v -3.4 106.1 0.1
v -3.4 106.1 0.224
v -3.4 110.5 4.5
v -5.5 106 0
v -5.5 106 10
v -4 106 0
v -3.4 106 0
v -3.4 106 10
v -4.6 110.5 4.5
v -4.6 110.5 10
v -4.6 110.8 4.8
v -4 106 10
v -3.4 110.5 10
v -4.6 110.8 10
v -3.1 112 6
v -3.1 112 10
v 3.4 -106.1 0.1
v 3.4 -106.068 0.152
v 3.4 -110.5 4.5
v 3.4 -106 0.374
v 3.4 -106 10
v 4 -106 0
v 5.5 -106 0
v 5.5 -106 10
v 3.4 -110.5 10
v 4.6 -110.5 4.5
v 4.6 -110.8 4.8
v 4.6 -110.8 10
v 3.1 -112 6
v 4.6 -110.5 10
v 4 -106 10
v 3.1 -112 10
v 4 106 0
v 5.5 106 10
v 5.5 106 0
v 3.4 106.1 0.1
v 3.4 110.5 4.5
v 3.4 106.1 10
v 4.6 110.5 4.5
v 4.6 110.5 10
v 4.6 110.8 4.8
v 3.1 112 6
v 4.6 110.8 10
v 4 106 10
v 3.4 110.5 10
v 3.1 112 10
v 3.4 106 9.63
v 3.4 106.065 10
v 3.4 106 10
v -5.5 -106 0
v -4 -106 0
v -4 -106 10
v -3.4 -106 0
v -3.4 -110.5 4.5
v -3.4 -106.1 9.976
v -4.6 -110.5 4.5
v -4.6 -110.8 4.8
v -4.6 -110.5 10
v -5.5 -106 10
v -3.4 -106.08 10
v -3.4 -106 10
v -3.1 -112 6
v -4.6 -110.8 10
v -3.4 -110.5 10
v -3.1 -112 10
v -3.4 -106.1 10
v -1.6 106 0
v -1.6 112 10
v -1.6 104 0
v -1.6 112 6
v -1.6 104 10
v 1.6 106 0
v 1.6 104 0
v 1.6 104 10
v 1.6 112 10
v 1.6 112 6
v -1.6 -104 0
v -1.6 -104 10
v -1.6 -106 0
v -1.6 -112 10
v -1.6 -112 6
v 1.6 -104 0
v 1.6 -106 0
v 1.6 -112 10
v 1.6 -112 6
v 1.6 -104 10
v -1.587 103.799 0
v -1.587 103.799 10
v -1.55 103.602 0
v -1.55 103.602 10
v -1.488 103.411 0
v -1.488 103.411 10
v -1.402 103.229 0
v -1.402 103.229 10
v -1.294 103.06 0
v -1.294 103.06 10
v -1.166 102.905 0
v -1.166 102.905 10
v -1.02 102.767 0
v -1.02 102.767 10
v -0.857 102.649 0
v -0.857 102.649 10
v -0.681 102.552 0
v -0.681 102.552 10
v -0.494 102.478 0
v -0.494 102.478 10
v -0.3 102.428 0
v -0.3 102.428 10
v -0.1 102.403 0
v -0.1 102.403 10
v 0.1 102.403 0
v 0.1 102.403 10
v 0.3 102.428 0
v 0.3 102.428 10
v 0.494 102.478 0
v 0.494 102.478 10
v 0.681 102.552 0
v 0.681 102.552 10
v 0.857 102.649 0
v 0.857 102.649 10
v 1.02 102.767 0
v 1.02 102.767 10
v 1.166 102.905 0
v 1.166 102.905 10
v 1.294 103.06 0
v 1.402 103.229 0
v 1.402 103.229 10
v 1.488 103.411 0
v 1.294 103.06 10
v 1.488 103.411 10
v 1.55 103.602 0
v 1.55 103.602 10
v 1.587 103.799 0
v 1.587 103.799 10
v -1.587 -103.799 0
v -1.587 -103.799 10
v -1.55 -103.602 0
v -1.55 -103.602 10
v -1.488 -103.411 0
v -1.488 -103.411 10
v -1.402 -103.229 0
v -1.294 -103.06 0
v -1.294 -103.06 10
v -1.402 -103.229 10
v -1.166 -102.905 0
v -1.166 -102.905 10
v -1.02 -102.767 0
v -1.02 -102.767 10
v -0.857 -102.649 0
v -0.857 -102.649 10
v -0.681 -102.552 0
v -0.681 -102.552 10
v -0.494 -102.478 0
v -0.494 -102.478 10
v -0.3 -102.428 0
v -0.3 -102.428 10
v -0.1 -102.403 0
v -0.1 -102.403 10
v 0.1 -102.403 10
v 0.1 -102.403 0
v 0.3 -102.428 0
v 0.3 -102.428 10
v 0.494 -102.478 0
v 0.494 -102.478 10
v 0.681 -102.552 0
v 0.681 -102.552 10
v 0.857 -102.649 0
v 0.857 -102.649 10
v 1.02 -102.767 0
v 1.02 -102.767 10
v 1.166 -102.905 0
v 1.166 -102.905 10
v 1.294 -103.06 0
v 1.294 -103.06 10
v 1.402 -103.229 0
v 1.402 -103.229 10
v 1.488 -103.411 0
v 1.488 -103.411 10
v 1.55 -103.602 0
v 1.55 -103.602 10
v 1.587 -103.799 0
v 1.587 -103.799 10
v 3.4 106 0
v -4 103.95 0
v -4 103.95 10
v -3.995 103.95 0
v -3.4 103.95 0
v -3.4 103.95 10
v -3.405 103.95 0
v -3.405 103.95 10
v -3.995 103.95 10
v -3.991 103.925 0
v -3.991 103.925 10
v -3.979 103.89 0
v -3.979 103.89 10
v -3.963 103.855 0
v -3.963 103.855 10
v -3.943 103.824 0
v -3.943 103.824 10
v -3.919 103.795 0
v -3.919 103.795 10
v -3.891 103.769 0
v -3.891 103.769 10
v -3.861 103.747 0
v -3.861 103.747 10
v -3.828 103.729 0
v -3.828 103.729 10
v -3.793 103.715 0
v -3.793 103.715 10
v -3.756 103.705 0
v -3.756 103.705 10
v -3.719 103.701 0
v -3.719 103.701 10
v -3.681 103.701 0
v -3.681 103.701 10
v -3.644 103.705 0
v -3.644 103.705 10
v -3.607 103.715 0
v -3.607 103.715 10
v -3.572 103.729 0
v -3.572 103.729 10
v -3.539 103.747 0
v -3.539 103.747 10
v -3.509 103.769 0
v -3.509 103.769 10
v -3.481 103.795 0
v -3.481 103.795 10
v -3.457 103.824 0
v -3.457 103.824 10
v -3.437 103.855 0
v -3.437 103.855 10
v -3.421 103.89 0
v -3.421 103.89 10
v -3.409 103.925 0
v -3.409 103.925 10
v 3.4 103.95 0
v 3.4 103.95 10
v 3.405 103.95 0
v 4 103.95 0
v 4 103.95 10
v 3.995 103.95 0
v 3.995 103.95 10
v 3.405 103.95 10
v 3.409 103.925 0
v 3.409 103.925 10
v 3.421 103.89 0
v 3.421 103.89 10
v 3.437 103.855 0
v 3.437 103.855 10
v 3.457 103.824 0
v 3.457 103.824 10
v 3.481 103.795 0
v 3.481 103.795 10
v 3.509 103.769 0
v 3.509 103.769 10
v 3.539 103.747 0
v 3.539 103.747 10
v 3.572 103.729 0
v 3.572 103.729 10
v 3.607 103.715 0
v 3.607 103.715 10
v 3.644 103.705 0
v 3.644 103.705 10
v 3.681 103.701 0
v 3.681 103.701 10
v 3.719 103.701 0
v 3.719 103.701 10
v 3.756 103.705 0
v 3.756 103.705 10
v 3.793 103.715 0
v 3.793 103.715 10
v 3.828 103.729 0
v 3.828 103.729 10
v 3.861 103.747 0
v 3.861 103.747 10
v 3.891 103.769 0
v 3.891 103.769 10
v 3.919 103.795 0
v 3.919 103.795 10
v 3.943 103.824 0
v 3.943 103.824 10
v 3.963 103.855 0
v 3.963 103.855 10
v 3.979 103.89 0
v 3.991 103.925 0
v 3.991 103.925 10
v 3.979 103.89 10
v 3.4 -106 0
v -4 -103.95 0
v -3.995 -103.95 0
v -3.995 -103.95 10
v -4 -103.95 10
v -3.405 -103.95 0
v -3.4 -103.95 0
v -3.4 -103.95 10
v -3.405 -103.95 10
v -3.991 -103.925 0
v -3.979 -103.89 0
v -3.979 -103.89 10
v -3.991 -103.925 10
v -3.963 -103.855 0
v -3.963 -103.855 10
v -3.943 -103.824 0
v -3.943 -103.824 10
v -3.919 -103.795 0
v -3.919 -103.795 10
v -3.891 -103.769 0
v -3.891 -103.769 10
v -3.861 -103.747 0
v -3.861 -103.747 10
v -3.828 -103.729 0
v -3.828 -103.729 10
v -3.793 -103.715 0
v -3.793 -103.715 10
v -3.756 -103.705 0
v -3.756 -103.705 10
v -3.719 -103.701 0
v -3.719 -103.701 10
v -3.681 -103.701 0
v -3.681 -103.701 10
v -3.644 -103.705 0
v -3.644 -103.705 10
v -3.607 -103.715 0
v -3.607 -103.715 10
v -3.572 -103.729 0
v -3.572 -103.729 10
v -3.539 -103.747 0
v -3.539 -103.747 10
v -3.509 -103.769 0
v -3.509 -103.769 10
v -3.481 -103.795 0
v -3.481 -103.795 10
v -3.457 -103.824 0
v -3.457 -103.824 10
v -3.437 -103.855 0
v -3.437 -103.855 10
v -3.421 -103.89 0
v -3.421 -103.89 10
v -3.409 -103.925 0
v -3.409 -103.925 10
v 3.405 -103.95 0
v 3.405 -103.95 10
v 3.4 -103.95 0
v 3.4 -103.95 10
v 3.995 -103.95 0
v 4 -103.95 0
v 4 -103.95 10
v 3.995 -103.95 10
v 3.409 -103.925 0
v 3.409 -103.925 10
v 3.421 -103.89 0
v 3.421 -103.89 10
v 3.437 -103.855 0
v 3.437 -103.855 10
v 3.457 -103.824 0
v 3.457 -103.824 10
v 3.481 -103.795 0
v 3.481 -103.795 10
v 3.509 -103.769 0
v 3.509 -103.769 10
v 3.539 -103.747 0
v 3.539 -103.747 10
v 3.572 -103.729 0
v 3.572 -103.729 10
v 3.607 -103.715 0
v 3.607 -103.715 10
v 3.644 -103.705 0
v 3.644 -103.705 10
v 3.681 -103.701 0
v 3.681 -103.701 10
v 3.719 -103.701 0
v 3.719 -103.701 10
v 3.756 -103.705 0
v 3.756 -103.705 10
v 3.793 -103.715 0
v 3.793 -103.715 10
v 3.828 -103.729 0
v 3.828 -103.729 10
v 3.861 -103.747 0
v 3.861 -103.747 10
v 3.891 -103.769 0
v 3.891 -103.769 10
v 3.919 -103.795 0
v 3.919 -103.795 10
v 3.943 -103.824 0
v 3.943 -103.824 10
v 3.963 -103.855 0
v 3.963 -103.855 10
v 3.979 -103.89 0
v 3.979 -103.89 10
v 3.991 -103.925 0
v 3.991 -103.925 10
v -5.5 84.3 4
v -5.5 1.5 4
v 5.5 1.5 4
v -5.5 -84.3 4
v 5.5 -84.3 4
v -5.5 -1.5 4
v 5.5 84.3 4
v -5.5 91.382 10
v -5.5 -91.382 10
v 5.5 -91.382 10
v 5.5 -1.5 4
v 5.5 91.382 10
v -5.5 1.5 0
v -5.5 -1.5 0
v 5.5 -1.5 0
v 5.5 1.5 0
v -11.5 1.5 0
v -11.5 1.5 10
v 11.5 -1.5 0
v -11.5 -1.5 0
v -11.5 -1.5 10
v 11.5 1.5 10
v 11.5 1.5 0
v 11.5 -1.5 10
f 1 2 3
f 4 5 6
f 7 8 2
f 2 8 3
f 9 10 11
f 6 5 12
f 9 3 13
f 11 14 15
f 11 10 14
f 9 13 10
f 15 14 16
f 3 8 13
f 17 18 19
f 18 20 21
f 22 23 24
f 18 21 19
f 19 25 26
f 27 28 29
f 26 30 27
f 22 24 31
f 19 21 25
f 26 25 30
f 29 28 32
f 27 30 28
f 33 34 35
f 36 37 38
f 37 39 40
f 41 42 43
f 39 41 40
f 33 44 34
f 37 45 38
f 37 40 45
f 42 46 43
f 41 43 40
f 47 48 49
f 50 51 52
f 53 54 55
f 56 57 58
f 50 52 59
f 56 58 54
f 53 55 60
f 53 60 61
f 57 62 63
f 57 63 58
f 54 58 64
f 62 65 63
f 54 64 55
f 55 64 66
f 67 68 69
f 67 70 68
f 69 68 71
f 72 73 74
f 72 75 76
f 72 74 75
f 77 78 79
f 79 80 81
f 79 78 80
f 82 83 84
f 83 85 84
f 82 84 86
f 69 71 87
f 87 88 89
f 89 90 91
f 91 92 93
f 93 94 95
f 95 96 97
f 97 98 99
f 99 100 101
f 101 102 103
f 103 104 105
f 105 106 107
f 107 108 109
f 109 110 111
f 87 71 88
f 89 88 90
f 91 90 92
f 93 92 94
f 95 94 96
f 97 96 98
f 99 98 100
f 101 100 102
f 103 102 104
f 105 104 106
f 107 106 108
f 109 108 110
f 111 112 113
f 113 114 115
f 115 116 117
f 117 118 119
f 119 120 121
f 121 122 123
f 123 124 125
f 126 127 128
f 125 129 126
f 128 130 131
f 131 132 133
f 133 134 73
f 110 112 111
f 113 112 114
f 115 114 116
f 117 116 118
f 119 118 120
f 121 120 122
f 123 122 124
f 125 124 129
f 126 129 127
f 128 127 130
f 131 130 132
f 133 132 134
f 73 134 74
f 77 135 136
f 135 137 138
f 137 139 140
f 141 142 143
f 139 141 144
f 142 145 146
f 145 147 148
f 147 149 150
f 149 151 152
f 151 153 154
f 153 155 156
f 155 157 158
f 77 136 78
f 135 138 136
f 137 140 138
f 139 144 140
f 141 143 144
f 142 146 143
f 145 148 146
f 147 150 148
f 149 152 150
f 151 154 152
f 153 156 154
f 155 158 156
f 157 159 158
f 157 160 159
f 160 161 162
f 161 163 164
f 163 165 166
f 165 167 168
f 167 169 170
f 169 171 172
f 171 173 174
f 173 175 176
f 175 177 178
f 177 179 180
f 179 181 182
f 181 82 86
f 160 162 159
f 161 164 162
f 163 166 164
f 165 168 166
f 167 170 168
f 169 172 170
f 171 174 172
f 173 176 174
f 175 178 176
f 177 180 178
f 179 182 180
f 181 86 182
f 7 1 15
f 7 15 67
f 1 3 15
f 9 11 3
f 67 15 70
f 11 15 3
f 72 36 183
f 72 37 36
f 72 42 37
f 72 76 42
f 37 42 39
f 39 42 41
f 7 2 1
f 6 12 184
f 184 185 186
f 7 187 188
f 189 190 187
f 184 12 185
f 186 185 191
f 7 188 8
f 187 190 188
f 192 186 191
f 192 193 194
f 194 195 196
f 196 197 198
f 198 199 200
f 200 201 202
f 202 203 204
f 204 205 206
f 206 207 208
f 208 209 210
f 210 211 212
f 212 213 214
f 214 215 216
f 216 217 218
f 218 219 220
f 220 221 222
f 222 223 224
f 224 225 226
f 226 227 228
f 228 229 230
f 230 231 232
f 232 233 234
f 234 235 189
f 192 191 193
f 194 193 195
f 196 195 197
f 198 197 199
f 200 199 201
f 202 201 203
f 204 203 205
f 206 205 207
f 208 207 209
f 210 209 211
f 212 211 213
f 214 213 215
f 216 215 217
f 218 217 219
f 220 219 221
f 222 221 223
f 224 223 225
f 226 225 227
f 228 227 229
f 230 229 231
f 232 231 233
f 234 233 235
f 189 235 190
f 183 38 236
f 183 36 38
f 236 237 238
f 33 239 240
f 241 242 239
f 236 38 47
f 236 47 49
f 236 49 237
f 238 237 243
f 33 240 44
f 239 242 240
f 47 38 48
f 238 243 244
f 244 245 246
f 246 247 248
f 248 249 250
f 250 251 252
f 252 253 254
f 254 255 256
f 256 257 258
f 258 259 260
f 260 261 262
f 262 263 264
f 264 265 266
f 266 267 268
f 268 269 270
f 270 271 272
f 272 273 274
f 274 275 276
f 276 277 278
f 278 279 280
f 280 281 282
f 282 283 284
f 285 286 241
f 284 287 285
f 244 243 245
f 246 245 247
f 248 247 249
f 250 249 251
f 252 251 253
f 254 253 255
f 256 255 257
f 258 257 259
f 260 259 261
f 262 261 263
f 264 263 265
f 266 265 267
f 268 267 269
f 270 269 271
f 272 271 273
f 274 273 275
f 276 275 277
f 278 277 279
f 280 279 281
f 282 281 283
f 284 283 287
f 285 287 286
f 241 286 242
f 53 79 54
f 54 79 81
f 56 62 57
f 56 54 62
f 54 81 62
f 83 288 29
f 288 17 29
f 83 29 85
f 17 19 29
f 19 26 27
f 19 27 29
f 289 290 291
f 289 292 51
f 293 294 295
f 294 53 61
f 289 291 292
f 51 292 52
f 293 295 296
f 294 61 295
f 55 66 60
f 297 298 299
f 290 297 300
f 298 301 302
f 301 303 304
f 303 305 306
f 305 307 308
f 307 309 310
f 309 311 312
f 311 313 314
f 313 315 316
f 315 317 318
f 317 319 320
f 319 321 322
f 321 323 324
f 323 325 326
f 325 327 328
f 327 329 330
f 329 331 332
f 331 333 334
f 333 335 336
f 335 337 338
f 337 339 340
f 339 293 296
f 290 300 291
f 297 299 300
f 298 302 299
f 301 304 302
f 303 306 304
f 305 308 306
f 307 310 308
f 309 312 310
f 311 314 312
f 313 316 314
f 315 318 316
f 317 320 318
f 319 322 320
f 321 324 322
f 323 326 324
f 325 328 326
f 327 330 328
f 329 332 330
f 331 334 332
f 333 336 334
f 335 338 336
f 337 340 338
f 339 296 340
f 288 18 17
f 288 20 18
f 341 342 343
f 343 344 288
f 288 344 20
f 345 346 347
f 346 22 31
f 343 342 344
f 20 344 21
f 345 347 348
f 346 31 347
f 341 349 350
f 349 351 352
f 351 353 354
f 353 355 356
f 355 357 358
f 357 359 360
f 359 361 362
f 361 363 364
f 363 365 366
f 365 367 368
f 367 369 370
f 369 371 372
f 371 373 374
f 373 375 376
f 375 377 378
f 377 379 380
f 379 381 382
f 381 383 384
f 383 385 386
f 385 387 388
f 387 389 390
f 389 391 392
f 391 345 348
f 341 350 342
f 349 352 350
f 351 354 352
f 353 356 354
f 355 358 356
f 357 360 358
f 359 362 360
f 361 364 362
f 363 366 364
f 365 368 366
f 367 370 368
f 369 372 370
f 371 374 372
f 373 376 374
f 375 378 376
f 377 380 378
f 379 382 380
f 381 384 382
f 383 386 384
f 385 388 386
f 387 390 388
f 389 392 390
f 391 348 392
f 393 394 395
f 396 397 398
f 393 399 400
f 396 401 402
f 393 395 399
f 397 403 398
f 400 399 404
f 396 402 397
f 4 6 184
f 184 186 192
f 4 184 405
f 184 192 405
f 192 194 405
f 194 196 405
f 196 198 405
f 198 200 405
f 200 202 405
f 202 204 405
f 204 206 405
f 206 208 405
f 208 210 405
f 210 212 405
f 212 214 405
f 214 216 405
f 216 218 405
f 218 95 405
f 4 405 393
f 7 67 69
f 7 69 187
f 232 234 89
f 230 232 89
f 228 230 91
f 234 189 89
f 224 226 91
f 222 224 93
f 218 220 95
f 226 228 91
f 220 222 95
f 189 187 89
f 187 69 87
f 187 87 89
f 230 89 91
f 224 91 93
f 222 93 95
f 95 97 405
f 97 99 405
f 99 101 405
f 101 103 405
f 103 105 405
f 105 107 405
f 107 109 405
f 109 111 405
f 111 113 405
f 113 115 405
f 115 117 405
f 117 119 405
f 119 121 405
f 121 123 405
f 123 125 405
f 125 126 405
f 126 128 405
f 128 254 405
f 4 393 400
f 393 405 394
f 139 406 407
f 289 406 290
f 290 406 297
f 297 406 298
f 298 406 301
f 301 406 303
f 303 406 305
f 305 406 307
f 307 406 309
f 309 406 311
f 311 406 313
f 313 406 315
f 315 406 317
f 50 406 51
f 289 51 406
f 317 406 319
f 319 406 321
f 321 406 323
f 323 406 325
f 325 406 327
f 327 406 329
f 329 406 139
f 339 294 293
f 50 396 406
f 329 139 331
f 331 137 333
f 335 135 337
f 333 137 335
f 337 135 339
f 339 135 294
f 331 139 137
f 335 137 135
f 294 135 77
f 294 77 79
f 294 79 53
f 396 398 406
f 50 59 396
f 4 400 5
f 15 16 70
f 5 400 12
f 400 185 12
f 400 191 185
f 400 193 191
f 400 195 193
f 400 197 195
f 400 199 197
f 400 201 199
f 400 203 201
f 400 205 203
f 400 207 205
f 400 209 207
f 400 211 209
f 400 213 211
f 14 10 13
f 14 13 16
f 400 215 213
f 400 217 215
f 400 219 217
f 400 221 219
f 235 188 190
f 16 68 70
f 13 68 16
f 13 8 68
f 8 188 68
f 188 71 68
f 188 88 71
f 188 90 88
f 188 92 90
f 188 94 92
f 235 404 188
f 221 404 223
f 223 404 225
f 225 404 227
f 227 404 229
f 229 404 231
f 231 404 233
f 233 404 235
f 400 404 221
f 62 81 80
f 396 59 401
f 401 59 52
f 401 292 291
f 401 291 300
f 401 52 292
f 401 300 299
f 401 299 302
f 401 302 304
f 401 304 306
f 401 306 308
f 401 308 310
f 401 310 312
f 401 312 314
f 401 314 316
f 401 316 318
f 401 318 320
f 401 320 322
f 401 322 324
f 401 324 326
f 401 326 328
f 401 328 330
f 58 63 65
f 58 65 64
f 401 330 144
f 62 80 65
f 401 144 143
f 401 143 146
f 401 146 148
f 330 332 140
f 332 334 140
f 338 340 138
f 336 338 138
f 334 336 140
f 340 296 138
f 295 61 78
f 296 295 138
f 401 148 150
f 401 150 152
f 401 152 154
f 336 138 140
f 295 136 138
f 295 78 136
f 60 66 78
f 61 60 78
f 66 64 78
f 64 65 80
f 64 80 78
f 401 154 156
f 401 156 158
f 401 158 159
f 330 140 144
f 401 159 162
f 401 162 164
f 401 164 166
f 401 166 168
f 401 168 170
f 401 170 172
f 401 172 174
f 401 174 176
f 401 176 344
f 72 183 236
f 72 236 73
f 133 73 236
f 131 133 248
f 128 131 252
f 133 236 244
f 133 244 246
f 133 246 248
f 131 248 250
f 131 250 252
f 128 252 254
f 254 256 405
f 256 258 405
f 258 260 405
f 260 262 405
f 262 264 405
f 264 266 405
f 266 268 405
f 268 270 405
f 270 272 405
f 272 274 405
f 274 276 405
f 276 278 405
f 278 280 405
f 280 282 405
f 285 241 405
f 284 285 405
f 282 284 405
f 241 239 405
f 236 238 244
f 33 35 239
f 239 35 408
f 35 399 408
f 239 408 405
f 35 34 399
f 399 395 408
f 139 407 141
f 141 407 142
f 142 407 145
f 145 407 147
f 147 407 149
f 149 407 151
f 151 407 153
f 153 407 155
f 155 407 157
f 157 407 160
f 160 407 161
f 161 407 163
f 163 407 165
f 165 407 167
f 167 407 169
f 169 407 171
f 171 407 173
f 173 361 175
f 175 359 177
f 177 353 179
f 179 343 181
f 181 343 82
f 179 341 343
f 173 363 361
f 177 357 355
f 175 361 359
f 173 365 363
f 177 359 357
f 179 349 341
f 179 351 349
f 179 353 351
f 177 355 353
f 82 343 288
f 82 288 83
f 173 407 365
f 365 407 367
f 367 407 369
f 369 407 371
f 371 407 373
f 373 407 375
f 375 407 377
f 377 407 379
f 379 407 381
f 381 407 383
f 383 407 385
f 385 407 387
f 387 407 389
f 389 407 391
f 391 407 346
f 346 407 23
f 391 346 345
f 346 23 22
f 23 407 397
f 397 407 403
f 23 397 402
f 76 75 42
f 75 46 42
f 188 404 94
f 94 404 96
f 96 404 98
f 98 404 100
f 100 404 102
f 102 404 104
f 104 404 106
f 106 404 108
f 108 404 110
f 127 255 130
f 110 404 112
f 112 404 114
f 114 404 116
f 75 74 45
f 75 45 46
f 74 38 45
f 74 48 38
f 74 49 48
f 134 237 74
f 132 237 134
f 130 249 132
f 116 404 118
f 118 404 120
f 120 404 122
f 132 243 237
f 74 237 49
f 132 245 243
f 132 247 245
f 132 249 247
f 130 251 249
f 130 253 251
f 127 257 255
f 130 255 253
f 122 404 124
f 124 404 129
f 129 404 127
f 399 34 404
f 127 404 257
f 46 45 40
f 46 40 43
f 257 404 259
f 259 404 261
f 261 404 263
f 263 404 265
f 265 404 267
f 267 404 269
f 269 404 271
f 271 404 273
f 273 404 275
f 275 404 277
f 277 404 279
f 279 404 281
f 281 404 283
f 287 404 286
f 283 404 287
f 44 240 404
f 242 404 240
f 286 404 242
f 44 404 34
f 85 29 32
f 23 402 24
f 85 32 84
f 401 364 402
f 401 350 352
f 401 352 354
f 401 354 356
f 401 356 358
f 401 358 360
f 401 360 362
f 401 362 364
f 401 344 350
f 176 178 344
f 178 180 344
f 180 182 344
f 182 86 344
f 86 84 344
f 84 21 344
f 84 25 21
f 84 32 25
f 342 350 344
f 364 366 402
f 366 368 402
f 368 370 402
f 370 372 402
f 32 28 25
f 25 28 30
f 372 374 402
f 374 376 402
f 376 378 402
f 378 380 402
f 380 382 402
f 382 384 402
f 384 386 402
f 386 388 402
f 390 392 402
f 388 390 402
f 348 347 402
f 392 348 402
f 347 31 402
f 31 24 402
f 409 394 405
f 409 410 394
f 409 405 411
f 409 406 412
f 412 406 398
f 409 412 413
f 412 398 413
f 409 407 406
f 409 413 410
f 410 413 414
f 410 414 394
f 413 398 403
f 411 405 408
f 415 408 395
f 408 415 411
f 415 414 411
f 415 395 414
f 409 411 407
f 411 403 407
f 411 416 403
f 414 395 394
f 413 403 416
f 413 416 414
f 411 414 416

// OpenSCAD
$fn = 50;

difference() {
	union() {
		translate(v = [0, 106.0, 0]) {
			rotate(a = [90, 0, 0]) {
				difference() {
					union() {
						translate(v = [0, 0, 0]) {
							rotate(a = [0, 0, 0]) {
								difference() {
									union() {
										translate(v = [-5.5, 0, -6.0]) {
											cube(size = [11.0, 10.0, 224.0]);
										}
									}
									union() {
										translate(v = [0, 0, 0]) {
											rotate(a = [0, 0, 0]) {
												difference() {
													union() {
														translate(v = [0, 10.1, 0]) {
															rotate(a = [90, 0, 0]) {
																linear_extrude(height = 10.2) {
																	polygon(points = [[-3.1, -6.1], [-3.1, -6.0], [-4.6, -4.8], [-4.6, -4.5], [-3.4, -4.5], [-3.4, 0], [-5.6, 0], [-5.6, -6.1]]);
																}
															}
														}
														translate(v = [0, 10.1, 0]) {
															rotate(a = [90, 0, 0]) {
																linear_extrude(height = 10.2) {
																	polygon(points = [[3.1, -6.1], [3.1, -6.0], [4.6, -4.8], [4.6, -4.5], [3.4, -4.5], [3.4, 0], [5.6, 0], [5.6, -6.1]]);
																}
															}
														}
														translate(v = [-1.5999999999999999, -0.1, -6.1]) {
															cube(size = [3.1999999999999997, 10.2, 8.1]);
														}
														translate(v = [0, 10.1, 2.0]) {
															rotate(a = [90, 0, 0]) {
																cylinder(h = 10.2, r = 1.5999999999999999);
															}
														}
													}
													union();
												}
											}
										}
										translate(v = [0, 0, 212.0]) {
											rotate(a = [0, 180, 0]) {
												difference() {
													union() {
														translate(v = [0, 10.1, 0]) {
															rotate(a = [90, 0, 0]) {
																linear_extrude(height = 10.2) {
																	polygon(points = [[-3.1, -6.1], [-3.1, -6.0], [-4.6, -4.8], [-4.6, -4.5], [-3.4, -4.5], [-3.4, 0], [-5.6, 0], [-5.6, -6.1]]);
																}
															}
														}
														translate(v = [0, 10.1, 0]) {
															rotate(a = [90, 0, 0]) {
																linear_extrude(height = 10.2) {
																	polygon(points = [[3.1, -6.1], [3.1, -6.0], [4.6, -4.8], [4.6, -4.5], [3.4, -4.5], [3.4, 0], [5.6, 0], [5.6, -6.1]]);
																}
															}
														}
														translate(v = [-1.5999999999999999, -0.1, -6.1]) {
															cube(size = [3.1999999999999997, 10.2, 8.1]);
														}
														translate(v = [0, 10.1, 2.0]) {
															rotate(a = [90, 0, 0]) {
																cylinder(h = 10.2, r = 1.5999999999999999);
															}
														}
													}
													union();
												}
											}
										}
										translate(v = [-5.6, 0, 0]) {
											rotate(a = [90, 0, 90]) {
												linear_extrude(height = 11.2) {
													polygon(points = [[-0.1, -6.1], [6.1, -6.1], [0, 0.0], [-0.1, 0.0]]);
												}
											}
										}
										translate(v = [0, 10.1, 0]) {
											rotate(a = [90, 0, 0]) {
												linear_extrude(height = 10.2) {
													polygon(points = [[-3.4, -0.1], [-4.0, -0.1], [-4.0, 2.05], [-3.4, 2.05]]);
												}
											}
										}
										translate(v = [-3.6999999999999997, 10.1, 2.0]) {
											rotate(a = [90, 0, 0]) {
												cylinder(h = 10.2, r = 0.3);
											}
										}
										translate(v = [0, 10.1, 0]) {
											rotate(a = [90, 0, 0]) {
												linear_extrude(height = 10.2) {
													polygon(points = [[3.4, -0.1], [4.0, -0.1], [4.0, 2.05], [3.4, 2.05]]);
												}
											}
										}
										translate(v = [3.6999999999999997, 10.1, 2.0]) {
											rotate(a = [90, 0, 0]) {
												cylinder(h = 10.2, r = 0.3);
											}
										}
										translate(v = [-5.6, 0, 0]) {
											rotate(a = [90, 0, 90]) {
												linear_extrude(height = 11.2) {
													polygon(points = [[-0.1, 218.1], [6.1, 218.1], [0, 212.0], [-0.1, 212.0]]);
												}
											}
										}
										translate(v = [0, 10.1, 0]) {
											rotate(a = [90, 0, 0]) {
												linear_extrude(height = 10.2) {
													polygon(points = [[-3.4, 212.1], [-4.0, 212.1], [-4.0, 209.95], [-3.4, 209.95]]);
												}
											}
										}
										translate(v = [-3.6999999999999997, 10.1, 210.0]) {
											rotate(a = [90, 0, 0]) {
												cylinder(h = 10.2, r = 0.3);
											}
										}
										translate(v = [0, 10.1, 0]) {
											rotate(a = [90, 0, 0]) {
												linear_extrude(height = 10.2) {
													polygon(points = [[3.4, 212.1], [4.0, 212.1], [4.0, 209.95], [3.4, 209.95]]);
												}
											}
										}
										translate(v = [3.6999999999999997, 10.1, 210.0]) {
											rotate(a = [90, 0, 0]) {
												cylinder(h = 10.2, r = 0.3);
											}
										}
										translate(v = [-5.6, 0, 0]) {
											rotate(a = [90, 0, 90]) {
												linear_extrude(height = 11.2) {
													polygon(points = [[10.1, 14.5], [10.1, 197.5], [4.0, 190.3], [4.0, 21.7]]);
												}
											}
										}
									}
								}
							}
						}
						translate(v = [-11.5, 0, 104.5]) {
							cube(size = [23.0, 10.0, 3.0]);
						}
					}
					union();
				}
			}
		}
	}
	union();
}
